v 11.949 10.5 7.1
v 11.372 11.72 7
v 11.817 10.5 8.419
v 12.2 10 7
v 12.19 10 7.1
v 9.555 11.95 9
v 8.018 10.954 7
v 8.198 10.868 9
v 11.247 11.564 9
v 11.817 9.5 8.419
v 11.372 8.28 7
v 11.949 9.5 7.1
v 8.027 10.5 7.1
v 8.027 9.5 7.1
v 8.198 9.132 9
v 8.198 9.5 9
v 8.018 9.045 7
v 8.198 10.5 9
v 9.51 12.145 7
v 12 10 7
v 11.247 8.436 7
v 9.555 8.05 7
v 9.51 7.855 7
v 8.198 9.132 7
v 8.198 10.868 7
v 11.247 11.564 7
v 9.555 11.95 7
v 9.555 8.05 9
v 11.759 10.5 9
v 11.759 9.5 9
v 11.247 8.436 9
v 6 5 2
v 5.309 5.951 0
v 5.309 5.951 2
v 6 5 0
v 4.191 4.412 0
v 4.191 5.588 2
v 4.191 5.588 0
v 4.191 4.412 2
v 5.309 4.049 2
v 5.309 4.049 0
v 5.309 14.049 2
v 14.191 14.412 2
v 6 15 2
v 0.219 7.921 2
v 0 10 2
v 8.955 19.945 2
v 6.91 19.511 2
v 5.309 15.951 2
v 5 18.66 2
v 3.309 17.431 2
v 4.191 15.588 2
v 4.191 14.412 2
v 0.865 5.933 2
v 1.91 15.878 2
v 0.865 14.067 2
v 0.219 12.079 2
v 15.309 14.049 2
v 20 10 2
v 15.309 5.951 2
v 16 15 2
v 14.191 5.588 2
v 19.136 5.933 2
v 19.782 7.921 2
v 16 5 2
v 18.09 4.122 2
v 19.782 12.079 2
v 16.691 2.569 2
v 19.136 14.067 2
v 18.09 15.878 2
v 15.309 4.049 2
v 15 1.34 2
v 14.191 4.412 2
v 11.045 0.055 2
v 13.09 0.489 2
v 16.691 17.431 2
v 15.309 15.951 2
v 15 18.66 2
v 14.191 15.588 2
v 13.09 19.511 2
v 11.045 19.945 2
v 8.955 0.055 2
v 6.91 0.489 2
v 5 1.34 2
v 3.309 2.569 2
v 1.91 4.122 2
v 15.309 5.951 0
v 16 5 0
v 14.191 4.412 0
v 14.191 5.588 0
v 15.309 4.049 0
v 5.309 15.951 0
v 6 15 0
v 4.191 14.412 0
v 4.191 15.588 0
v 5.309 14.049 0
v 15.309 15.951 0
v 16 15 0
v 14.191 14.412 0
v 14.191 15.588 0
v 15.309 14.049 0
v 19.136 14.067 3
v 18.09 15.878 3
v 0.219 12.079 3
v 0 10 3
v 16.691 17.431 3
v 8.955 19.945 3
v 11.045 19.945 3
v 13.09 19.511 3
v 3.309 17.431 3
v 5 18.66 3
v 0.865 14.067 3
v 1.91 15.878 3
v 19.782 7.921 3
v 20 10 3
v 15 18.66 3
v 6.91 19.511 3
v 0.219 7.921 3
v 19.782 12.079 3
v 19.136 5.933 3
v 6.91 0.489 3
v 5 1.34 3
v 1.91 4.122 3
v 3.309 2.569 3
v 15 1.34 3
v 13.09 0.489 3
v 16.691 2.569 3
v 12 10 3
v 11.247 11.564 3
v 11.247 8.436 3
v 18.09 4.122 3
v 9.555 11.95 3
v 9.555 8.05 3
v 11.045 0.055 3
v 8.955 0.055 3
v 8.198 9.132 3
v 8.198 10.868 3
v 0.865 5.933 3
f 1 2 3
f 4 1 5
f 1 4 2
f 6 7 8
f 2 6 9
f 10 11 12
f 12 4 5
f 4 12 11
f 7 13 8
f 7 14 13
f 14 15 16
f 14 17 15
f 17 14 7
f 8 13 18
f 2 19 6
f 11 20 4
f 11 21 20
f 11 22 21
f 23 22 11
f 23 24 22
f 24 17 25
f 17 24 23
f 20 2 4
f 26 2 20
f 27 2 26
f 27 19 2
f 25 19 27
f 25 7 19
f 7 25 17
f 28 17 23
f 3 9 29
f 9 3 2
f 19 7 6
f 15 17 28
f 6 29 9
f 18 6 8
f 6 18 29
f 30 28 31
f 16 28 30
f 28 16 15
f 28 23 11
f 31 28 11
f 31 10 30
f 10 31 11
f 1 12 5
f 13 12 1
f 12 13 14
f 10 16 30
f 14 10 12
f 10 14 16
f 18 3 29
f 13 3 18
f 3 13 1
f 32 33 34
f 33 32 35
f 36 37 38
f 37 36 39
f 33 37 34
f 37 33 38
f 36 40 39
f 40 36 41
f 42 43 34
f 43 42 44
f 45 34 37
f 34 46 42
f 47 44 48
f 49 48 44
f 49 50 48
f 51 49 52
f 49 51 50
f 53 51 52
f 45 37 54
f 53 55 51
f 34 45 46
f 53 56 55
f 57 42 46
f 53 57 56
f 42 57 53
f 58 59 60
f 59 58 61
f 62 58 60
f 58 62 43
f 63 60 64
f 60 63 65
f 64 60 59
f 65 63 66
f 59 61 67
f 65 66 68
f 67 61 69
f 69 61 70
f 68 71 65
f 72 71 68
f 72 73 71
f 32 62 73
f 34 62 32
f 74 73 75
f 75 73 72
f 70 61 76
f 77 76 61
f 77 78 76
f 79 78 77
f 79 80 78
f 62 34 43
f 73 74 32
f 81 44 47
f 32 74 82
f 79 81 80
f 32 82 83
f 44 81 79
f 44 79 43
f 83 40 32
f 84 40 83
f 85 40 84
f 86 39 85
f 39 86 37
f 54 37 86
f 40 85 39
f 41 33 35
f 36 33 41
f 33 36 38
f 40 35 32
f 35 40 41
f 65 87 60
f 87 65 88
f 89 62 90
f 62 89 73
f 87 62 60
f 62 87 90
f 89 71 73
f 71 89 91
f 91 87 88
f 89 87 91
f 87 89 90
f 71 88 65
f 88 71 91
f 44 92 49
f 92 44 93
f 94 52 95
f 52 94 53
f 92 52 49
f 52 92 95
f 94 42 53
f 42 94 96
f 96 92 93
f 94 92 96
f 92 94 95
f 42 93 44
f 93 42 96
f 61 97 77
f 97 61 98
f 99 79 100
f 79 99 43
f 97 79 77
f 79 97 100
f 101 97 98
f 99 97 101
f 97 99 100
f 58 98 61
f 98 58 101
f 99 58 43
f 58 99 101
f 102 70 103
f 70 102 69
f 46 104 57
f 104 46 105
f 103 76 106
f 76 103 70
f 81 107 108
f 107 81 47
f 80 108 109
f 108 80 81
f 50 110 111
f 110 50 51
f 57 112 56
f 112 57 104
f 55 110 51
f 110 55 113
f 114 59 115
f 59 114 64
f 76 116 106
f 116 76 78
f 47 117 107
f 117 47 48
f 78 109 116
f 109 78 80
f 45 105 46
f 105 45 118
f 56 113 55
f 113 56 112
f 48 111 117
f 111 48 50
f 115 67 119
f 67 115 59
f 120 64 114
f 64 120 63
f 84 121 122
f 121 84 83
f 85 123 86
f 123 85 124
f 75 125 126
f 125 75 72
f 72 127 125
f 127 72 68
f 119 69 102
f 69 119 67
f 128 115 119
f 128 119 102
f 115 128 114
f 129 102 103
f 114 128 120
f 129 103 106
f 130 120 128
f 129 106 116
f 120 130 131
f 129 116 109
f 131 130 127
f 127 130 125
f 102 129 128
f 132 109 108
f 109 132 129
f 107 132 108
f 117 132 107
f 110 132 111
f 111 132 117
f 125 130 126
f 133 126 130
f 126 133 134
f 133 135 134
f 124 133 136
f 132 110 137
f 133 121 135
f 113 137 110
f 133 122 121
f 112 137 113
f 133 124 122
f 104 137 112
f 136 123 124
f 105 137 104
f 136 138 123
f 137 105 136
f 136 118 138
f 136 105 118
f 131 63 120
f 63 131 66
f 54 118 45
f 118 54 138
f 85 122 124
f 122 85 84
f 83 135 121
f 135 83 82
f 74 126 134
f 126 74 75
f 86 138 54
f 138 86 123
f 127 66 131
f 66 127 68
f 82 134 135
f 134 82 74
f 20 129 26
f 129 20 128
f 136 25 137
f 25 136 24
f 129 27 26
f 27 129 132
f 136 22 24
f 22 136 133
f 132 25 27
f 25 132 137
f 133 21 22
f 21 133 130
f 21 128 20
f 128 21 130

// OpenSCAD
union() {
    translate([5,5,0]) cylinder(2,1,1);
    translate([15,5,0]) cylinder(2,1,1);
    translate([5,15,0]) cylinder(2,1,1);
    translate([15,15,0]) cylinder(2,1,1);
    translate([10,10,2]) cylinder(1,10,10);
    translate([10,10,3]) cylinder(4,2,2);
    difference() {
        translate([10,10,7]) cylinder(2,2.2,2);
        translate([6,9.5,7.1]) cube([9.5,1,5]);
    }
}
